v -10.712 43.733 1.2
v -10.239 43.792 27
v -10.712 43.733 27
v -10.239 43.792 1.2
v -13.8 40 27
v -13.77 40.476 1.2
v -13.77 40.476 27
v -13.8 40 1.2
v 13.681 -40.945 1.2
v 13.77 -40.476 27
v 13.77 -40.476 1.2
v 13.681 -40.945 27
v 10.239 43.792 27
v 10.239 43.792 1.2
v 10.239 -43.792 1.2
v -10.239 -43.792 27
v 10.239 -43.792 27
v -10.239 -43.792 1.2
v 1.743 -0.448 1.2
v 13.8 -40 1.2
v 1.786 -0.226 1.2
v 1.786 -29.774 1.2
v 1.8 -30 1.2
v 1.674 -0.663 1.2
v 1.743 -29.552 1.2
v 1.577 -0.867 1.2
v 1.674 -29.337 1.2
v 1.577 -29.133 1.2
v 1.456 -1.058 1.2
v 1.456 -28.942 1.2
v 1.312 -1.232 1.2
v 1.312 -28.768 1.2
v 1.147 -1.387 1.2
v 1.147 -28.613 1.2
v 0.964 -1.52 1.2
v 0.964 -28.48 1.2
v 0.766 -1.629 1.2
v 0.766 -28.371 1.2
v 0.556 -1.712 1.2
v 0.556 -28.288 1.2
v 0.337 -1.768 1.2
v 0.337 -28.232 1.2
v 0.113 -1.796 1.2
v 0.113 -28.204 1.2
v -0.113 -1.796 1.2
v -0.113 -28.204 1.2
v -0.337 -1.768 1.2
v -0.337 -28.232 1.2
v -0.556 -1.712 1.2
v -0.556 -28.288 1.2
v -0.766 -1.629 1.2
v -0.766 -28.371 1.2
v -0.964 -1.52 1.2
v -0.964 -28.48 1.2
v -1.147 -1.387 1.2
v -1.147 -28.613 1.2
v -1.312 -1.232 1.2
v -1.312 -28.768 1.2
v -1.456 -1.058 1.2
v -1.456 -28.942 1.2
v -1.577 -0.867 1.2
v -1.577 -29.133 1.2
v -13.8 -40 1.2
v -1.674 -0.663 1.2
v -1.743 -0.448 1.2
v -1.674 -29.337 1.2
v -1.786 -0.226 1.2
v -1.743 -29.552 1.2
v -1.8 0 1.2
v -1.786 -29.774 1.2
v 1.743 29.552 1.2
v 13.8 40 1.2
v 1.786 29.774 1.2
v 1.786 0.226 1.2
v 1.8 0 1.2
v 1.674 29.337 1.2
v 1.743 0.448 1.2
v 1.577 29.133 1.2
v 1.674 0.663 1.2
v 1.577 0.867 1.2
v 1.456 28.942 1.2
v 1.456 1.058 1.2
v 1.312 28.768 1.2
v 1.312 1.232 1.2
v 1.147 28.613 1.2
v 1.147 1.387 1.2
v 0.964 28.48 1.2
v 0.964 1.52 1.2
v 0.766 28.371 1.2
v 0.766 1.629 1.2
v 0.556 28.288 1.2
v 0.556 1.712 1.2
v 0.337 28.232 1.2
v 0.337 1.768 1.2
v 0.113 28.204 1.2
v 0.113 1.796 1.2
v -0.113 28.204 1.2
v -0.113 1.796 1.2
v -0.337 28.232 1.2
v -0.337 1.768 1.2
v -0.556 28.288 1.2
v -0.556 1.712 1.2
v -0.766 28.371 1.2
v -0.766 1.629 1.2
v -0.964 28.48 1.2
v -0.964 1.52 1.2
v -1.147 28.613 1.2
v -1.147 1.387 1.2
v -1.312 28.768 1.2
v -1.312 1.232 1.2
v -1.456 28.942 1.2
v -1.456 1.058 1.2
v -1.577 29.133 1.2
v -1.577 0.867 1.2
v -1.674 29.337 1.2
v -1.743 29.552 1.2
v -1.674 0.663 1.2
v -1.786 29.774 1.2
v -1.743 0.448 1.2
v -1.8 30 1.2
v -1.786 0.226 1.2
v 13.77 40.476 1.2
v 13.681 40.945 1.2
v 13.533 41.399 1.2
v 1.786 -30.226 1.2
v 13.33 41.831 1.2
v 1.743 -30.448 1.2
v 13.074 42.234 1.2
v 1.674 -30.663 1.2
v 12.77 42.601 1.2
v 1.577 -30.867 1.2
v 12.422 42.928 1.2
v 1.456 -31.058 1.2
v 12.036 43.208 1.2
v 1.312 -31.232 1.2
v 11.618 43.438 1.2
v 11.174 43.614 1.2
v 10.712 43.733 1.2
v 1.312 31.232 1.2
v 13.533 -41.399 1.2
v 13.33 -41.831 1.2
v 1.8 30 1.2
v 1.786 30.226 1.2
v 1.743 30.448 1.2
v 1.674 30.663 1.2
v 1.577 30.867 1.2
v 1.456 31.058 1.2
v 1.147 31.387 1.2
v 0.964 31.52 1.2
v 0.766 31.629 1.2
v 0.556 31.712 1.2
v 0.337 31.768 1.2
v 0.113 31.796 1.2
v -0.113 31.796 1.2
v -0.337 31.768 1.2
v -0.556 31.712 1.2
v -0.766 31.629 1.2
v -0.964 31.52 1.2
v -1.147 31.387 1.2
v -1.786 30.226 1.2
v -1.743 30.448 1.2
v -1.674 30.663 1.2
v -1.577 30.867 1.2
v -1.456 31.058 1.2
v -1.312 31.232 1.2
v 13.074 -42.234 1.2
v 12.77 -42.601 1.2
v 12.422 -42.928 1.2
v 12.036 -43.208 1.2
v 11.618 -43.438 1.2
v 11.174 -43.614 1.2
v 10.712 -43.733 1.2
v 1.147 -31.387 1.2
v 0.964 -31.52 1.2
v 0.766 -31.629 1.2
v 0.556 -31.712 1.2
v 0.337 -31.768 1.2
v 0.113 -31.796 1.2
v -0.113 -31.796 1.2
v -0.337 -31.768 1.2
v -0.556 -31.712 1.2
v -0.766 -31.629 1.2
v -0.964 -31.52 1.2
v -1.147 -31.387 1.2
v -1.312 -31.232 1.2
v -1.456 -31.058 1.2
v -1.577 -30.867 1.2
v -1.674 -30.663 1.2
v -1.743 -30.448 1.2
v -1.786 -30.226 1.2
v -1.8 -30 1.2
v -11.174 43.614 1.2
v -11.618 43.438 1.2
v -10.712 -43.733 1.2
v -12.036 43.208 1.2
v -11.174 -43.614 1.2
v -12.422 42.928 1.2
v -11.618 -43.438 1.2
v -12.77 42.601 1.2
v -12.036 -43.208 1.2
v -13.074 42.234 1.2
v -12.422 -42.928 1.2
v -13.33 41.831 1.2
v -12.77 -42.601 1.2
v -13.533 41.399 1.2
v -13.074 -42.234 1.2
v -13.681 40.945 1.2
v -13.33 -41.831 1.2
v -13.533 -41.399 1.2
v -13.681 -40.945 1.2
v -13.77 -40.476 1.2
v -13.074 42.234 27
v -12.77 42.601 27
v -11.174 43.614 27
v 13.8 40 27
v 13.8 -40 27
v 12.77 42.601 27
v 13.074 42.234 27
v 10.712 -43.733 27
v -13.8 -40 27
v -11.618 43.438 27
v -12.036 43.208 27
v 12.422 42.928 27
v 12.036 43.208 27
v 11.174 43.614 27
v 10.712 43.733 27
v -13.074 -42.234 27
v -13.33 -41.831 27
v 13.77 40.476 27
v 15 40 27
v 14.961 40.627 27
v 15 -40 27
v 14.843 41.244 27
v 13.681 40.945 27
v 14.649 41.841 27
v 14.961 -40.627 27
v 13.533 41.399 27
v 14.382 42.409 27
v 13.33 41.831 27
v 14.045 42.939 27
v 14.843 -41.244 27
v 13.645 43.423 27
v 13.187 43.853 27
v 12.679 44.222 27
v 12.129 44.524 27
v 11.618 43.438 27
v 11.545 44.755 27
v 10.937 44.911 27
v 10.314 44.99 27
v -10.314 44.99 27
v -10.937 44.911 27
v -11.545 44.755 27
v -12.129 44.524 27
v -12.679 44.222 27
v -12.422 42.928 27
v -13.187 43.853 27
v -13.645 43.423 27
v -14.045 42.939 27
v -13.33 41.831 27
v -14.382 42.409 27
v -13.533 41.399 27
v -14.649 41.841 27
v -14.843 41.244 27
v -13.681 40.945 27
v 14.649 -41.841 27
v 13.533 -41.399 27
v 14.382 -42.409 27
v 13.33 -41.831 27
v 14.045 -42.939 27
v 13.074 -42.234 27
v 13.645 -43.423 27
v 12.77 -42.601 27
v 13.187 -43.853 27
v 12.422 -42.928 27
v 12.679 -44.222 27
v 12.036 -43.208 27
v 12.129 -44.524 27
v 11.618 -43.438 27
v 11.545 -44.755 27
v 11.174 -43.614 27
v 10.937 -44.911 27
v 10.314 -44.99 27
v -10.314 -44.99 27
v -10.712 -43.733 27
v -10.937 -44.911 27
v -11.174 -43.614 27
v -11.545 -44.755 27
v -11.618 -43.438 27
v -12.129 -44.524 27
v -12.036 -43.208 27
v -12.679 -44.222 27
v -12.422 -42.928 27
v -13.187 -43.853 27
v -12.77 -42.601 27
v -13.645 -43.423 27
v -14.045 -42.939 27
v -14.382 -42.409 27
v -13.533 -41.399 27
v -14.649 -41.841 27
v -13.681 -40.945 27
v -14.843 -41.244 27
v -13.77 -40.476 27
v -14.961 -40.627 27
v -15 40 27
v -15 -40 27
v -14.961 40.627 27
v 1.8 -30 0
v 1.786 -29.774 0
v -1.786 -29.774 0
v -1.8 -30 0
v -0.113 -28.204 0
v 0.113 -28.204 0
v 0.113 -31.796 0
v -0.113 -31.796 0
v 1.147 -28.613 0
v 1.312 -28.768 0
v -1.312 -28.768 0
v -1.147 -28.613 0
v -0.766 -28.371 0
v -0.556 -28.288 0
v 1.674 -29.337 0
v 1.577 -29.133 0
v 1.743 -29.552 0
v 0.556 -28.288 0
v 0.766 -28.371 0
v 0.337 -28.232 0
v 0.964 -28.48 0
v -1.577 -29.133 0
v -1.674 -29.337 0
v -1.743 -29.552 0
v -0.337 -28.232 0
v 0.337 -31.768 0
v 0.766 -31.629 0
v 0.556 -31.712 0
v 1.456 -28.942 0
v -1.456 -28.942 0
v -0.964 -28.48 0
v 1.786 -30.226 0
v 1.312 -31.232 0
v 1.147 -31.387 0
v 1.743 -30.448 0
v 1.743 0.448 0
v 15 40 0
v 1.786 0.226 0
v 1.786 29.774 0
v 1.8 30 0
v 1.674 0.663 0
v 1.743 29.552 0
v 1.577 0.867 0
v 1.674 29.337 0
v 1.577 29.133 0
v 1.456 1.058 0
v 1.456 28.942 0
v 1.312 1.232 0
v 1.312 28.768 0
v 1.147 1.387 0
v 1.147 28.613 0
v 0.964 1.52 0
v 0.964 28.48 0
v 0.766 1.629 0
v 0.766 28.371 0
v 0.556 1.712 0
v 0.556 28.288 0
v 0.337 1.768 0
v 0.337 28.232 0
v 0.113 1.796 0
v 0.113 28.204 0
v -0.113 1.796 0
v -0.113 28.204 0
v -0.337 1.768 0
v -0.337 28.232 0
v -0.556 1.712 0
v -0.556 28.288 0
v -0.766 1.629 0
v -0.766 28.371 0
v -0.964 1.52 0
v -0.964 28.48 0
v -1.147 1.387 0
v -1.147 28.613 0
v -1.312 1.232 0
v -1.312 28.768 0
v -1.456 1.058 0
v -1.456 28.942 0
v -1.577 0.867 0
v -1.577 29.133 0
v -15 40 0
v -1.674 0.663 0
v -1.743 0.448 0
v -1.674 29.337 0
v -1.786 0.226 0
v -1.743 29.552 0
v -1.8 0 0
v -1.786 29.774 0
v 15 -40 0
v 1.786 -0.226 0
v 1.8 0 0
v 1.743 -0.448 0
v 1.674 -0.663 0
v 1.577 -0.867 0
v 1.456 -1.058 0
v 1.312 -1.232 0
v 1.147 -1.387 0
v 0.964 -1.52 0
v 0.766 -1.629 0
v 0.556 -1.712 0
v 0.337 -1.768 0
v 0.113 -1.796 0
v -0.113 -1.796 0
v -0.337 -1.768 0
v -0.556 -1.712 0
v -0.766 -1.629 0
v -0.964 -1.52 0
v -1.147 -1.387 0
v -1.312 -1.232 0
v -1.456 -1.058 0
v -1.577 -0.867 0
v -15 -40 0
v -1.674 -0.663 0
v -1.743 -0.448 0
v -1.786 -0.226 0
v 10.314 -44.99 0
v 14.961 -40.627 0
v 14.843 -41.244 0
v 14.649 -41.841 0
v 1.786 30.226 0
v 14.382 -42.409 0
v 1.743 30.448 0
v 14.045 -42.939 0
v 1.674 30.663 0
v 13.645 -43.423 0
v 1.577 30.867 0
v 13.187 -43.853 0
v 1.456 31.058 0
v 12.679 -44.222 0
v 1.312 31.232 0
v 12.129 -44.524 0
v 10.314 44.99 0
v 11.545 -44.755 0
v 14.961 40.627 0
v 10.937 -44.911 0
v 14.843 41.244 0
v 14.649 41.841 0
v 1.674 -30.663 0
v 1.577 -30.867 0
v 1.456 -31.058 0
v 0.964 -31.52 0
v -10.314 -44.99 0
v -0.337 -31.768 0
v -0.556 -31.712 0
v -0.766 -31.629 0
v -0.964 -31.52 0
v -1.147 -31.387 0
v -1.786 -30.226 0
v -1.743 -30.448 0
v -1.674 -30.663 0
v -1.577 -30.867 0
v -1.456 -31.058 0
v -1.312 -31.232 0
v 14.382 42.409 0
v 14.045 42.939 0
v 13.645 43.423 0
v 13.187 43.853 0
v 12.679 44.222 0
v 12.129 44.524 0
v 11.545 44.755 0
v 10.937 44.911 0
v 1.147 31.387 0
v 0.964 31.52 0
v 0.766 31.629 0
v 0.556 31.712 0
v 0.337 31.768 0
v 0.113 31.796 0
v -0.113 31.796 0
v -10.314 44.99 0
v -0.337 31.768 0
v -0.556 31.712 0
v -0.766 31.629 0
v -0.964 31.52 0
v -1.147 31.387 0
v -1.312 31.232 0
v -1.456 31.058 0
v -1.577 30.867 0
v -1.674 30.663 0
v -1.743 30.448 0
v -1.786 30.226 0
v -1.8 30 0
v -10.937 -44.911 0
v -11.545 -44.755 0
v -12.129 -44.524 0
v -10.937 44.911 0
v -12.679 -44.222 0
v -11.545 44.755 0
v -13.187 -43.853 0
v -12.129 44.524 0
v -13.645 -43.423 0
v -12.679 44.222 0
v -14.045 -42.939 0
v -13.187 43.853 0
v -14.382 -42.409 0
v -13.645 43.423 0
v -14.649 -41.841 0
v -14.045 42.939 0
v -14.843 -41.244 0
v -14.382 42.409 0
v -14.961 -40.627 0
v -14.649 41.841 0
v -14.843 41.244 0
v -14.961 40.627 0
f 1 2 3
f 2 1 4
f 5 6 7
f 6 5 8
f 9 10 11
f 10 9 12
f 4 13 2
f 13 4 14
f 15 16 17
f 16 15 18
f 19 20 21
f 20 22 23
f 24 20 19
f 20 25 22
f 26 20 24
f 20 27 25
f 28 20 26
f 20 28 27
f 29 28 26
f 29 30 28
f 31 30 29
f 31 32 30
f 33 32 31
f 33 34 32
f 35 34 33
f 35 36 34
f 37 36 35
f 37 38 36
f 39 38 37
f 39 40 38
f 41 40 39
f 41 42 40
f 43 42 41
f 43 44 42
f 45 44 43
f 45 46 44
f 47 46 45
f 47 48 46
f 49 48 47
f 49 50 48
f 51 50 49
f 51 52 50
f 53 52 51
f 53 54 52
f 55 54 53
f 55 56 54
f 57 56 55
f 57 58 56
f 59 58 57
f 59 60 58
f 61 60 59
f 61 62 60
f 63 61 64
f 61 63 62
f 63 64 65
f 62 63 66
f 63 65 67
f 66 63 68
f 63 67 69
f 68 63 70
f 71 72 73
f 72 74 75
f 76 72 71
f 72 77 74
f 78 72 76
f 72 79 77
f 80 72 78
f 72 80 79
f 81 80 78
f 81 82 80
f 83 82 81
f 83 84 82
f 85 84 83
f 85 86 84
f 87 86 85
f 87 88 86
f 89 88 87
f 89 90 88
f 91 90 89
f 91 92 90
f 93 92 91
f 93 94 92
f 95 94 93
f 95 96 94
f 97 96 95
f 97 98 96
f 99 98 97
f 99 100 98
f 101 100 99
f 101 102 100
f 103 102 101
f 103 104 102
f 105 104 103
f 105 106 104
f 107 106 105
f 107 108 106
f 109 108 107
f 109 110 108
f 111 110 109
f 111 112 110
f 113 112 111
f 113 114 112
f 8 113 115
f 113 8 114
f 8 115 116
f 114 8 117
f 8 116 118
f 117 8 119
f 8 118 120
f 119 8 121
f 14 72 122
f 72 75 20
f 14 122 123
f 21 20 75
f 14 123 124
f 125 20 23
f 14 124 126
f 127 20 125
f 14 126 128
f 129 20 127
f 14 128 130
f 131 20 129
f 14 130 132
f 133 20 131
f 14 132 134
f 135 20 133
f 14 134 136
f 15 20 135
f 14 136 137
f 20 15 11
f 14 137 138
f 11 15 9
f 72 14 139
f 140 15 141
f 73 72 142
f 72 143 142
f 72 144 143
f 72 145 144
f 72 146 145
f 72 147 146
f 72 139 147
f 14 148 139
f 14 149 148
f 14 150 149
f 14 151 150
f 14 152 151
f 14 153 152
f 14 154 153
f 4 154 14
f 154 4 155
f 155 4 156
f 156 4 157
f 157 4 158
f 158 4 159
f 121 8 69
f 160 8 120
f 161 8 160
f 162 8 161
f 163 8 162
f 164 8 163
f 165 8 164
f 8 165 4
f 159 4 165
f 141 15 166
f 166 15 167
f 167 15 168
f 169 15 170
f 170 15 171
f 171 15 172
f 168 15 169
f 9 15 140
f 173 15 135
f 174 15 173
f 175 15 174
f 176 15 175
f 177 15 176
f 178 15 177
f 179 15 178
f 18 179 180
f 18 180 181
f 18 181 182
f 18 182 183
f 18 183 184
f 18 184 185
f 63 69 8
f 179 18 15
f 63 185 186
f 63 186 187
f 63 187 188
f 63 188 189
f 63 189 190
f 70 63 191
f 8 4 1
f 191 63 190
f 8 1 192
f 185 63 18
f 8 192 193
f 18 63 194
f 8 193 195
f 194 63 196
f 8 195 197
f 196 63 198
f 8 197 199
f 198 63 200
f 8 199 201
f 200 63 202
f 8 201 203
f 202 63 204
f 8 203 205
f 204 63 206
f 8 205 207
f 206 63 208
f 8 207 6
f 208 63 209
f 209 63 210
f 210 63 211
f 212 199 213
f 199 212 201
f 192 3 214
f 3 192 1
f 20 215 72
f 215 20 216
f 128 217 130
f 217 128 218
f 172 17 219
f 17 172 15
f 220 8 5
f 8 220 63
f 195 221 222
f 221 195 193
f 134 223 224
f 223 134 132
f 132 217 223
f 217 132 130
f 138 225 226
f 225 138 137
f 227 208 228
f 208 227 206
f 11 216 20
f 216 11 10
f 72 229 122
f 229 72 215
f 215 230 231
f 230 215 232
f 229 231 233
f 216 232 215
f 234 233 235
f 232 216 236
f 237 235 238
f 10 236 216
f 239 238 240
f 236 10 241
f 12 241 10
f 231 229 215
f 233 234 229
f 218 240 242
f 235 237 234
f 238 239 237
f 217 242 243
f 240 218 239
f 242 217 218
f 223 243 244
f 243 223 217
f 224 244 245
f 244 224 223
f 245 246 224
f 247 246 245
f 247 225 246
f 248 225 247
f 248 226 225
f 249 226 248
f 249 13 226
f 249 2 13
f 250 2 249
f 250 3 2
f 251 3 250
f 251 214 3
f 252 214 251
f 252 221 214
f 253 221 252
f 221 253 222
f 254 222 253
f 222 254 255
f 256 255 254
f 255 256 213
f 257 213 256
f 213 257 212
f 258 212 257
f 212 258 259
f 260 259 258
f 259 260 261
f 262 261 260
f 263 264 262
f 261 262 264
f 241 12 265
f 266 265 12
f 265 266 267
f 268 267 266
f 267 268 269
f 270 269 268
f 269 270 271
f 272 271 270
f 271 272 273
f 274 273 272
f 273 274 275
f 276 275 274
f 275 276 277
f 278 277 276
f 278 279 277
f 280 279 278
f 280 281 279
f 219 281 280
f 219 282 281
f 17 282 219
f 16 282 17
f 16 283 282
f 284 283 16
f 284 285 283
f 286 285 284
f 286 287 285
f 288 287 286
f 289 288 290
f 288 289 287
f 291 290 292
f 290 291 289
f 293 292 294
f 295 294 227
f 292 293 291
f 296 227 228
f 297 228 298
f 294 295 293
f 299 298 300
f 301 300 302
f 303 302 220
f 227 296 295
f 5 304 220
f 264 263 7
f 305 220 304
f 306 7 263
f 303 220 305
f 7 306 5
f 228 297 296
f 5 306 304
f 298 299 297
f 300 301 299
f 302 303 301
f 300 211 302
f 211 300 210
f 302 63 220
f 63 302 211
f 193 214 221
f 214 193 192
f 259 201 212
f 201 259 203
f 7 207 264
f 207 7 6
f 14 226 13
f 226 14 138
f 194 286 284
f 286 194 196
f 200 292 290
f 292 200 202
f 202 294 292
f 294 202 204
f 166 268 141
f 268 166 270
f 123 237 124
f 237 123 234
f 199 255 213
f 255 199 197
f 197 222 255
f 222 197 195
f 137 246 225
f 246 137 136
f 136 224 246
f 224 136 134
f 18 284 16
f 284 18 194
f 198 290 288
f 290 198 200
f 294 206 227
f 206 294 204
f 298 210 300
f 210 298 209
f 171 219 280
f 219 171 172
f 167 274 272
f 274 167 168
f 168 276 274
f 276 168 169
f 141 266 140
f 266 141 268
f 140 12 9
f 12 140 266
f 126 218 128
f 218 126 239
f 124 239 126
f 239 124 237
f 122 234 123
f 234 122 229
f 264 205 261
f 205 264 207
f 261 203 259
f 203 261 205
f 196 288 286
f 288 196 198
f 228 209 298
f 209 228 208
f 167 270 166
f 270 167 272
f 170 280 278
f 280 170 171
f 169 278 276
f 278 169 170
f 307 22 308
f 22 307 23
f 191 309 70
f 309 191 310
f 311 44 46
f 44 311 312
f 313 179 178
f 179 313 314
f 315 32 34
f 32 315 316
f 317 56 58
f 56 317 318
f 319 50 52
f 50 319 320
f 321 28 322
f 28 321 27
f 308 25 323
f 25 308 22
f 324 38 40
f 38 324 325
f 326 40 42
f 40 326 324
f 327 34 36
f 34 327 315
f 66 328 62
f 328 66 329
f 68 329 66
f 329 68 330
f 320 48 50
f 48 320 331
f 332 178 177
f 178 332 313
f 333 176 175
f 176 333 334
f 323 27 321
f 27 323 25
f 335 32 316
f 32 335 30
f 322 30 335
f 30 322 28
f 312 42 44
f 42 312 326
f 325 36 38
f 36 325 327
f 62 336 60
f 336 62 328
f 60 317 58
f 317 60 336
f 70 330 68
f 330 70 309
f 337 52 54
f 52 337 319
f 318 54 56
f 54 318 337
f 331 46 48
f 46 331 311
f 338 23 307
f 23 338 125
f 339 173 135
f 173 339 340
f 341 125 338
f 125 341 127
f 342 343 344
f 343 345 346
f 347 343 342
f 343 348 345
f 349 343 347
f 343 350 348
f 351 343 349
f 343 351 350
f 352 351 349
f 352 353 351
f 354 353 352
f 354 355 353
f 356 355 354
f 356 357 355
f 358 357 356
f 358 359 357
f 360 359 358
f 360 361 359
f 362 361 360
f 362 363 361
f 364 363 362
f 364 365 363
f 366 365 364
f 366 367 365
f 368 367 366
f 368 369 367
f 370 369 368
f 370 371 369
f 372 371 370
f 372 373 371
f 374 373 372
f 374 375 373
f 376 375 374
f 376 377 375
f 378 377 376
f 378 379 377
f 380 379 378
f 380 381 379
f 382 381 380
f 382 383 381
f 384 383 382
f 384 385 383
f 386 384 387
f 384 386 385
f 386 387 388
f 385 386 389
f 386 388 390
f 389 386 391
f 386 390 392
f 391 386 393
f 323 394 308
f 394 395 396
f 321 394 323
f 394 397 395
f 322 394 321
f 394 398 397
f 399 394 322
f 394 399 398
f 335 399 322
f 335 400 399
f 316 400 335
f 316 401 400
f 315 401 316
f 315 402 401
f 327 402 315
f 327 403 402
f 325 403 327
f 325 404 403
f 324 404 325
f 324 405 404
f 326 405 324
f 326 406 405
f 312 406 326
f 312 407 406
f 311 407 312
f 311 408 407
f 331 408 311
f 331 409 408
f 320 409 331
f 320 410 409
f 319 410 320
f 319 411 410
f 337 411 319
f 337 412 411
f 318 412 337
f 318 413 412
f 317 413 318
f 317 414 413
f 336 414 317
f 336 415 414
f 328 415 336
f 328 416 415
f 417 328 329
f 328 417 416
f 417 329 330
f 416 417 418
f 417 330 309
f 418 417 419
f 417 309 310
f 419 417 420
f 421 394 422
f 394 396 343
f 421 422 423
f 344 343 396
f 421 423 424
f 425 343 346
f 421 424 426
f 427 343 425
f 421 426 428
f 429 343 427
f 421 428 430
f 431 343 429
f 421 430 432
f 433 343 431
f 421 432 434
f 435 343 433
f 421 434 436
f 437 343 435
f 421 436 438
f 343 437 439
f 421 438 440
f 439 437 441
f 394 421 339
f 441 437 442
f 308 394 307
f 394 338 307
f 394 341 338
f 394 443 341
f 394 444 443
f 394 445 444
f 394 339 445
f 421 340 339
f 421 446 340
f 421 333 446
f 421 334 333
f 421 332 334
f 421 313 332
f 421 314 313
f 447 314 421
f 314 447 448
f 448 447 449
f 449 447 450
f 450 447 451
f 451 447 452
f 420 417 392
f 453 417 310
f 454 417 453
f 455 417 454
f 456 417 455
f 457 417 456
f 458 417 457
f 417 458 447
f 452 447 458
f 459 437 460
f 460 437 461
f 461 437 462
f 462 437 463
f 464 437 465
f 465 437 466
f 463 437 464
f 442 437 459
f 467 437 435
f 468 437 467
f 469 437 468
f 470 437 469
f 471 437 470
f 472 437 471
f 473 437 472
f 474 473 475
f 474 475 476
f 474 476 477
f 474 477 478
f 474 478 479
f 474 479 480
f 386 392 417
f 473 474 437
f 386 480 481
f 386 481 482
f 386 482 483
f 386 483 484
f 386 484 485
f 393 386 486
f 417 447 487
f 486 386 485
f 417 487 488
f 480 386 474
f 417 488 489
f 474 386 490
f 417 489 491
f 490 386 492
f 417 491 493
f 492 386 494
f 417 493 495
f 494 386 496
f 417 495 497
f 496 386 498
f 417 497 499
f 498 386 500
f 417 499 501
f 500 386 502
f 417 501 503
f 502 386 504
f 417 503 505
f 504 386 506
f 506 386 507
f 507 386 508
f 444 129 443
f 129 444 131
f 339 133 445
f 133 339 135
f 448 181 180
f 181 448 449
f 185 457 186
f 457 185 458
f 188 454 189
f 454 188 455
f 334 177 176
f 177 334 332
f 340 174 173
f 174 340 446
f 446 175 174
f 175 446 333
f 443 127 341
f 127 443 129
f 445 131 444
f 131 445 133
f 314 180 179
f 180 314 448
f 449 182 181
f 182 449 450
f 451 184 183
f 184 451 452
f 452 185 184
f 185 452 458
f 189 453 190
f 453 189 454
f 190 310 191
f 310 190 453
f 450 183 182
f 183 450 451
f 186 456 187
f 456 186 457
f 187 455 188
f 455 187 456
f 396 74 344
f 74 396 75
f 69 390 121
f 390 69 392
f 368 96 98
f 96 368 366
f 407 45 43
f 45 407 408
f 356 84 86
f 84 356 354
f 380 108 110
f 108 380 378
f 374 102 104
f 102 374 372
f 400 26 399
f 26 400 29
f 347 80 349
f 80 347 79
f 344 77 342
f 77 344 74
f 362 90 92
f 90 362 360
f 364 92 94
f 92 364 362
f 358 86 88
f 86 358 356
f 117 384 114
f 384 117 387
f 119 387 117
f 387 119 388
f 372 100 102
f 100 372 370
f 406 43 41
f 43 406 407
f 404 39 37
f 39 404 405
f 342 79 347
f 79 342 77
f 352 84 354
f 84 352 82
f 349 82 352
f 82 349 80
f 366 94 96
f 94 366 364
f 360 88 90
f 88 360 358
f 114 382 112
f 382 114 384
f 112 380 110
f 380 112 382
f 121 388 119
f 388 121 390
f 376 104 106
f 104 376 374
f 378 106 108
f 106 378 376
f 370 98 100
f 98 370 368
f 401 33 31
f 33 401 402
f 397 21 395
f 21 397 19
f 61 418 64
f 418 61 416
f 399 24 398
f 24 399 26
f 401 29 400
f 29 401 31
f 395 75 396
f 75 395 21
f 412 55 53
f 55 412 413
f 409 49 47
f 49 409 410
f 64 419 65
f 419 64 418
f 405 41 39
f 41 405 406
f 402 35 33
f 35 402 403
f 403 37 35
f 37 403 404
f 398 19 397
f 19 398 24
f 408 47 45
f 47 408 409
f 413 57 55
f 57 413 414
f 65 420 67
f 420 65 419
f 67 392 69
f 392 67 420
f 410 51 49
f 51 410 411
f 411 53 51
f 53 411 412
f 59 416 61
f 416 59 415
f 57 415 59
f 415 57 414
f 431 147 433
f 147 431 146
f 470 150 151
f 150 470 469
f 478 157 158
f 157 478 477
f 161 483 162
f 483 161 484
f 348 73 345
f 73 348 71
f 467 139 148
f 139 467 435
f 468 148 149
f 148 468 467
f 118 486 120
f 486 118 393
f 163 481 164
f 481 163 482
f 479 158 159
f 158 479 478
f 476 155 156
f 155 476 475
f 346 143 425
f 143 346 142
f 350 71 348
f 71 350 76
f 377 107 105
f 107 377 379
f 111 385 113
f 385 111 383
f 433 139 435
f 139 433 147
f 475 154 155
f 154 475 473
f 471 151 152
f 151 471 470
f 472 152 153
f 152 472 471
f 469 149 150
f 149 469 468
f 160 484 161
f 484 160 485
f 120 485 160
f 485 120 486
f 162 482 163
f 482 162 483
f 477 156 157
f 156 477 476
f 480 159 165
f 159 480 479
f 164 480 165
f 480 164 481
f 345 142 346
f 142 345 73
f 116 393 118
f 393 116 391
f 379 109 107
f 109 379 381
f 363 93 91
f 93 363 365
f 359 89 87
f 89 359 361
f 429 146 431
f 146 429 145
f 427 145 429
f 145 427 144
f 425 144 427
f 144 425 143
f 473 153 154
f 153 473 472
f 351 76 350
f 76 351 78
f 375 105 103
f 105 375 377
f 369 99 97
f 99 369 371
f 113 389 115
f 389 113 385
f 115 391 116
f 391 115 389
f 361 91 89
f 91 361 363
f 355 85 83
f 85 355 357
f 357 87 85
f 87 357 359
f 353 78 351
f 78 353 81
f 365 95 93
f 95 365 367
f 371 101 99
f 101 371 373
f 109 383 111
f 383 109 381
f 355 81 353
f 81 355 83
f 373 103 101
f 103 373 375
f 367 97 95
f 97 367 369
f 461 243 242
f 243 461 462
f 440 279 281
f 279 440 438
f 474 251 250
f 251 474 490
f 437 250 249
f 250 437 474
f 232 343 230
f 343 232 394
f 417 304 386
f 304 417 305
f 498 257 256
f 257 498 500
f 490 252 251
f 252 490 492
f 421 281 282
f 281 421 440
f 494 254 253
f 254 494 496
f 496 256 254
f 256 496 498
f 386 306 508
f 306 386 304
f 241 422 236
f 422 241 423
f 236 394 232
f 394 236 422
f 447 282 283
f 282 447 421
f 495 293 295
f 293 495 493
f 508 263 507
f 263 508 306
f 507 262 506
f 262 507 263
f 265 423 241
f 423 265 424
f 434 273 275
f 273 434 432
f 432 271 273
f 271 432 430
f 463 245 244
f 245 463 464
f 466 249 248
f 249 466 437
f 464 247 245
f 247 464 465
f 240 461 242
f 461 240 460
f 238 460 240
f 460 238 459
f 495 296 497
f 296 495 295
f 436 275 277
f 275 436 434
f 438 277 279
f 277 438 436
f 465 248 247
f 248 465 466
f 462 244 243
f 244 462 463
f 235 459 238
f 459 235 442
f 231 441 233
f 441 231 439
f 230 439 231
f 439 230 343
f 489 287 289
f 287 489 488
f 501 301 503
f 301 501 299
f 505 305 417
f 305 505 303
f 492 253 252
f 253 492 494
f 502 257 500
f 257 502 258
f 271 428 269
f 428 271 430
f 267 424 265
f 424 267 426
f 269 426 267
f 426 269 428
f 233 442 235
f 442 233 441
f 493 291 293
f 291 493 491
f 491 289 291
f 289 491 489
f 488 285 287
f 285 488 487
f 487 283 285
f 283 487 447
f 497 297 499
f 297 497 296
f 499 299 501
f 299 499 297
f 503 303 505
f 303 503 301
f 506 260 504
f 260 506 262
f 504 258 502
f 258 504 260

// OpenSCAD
$fn = 50;


difference() {
	union() {
		hull() {
			translate(v = [-10.0000000000, 40.0000000000, 0]) {
				cylinder(h = 27, r = 5);
			}
			translate(v = [10.0000000000, 40.0000000000, 0]) {
				cylinder(h = 27, r = 5);
			}
			translate(v = [-10.0000000000, -40.0000000000, 0]) {
				cylinder(h = 27, r = 5);
			}
			translate(v = [10.0000000000, -40.0000000000, 0]) {
				cylinder(h = 27, r = 5);
			}
		}
	}
	union() {
		translate(v = [0, 0, 1.2000000000]) {
			hull() {
				translate(v = [-10.0000000000, 40.0000000000, 0]) {
					cylinder(h = 25.8000000000, r = 3.8000000000);
				}
				translate(v = [10.0000000000, 40.0000000000, 0]) {
					cylinder(h = 25.8000000000, r = 3.8000000000);
				}
				translate(v = [-10.0000000000, -40.0000000000, 0]) {
					cylinder(h = 25.8000000000, r = 3.8000000000);
				}
				translate(v = [10.0000000000, -40.0000000000, 0]) {
					cylinder(h = 25.8000000000, r = 3.8000000000);
				}
			}
		}
		#translate(v = [0.0000000000, -30.0000000000, 0]) {
			cylinder(h = 1.2000000000, r = 1.8000000000);
		}
		#cylinder(h = 1.2000000000, r = 1.8000000000);
		#translate(v = [0.0000000000, 30.0000000000, 0]) {
			cylinder(h = 1.2000000000, r = 1.8000000000);
		}
	}
}
